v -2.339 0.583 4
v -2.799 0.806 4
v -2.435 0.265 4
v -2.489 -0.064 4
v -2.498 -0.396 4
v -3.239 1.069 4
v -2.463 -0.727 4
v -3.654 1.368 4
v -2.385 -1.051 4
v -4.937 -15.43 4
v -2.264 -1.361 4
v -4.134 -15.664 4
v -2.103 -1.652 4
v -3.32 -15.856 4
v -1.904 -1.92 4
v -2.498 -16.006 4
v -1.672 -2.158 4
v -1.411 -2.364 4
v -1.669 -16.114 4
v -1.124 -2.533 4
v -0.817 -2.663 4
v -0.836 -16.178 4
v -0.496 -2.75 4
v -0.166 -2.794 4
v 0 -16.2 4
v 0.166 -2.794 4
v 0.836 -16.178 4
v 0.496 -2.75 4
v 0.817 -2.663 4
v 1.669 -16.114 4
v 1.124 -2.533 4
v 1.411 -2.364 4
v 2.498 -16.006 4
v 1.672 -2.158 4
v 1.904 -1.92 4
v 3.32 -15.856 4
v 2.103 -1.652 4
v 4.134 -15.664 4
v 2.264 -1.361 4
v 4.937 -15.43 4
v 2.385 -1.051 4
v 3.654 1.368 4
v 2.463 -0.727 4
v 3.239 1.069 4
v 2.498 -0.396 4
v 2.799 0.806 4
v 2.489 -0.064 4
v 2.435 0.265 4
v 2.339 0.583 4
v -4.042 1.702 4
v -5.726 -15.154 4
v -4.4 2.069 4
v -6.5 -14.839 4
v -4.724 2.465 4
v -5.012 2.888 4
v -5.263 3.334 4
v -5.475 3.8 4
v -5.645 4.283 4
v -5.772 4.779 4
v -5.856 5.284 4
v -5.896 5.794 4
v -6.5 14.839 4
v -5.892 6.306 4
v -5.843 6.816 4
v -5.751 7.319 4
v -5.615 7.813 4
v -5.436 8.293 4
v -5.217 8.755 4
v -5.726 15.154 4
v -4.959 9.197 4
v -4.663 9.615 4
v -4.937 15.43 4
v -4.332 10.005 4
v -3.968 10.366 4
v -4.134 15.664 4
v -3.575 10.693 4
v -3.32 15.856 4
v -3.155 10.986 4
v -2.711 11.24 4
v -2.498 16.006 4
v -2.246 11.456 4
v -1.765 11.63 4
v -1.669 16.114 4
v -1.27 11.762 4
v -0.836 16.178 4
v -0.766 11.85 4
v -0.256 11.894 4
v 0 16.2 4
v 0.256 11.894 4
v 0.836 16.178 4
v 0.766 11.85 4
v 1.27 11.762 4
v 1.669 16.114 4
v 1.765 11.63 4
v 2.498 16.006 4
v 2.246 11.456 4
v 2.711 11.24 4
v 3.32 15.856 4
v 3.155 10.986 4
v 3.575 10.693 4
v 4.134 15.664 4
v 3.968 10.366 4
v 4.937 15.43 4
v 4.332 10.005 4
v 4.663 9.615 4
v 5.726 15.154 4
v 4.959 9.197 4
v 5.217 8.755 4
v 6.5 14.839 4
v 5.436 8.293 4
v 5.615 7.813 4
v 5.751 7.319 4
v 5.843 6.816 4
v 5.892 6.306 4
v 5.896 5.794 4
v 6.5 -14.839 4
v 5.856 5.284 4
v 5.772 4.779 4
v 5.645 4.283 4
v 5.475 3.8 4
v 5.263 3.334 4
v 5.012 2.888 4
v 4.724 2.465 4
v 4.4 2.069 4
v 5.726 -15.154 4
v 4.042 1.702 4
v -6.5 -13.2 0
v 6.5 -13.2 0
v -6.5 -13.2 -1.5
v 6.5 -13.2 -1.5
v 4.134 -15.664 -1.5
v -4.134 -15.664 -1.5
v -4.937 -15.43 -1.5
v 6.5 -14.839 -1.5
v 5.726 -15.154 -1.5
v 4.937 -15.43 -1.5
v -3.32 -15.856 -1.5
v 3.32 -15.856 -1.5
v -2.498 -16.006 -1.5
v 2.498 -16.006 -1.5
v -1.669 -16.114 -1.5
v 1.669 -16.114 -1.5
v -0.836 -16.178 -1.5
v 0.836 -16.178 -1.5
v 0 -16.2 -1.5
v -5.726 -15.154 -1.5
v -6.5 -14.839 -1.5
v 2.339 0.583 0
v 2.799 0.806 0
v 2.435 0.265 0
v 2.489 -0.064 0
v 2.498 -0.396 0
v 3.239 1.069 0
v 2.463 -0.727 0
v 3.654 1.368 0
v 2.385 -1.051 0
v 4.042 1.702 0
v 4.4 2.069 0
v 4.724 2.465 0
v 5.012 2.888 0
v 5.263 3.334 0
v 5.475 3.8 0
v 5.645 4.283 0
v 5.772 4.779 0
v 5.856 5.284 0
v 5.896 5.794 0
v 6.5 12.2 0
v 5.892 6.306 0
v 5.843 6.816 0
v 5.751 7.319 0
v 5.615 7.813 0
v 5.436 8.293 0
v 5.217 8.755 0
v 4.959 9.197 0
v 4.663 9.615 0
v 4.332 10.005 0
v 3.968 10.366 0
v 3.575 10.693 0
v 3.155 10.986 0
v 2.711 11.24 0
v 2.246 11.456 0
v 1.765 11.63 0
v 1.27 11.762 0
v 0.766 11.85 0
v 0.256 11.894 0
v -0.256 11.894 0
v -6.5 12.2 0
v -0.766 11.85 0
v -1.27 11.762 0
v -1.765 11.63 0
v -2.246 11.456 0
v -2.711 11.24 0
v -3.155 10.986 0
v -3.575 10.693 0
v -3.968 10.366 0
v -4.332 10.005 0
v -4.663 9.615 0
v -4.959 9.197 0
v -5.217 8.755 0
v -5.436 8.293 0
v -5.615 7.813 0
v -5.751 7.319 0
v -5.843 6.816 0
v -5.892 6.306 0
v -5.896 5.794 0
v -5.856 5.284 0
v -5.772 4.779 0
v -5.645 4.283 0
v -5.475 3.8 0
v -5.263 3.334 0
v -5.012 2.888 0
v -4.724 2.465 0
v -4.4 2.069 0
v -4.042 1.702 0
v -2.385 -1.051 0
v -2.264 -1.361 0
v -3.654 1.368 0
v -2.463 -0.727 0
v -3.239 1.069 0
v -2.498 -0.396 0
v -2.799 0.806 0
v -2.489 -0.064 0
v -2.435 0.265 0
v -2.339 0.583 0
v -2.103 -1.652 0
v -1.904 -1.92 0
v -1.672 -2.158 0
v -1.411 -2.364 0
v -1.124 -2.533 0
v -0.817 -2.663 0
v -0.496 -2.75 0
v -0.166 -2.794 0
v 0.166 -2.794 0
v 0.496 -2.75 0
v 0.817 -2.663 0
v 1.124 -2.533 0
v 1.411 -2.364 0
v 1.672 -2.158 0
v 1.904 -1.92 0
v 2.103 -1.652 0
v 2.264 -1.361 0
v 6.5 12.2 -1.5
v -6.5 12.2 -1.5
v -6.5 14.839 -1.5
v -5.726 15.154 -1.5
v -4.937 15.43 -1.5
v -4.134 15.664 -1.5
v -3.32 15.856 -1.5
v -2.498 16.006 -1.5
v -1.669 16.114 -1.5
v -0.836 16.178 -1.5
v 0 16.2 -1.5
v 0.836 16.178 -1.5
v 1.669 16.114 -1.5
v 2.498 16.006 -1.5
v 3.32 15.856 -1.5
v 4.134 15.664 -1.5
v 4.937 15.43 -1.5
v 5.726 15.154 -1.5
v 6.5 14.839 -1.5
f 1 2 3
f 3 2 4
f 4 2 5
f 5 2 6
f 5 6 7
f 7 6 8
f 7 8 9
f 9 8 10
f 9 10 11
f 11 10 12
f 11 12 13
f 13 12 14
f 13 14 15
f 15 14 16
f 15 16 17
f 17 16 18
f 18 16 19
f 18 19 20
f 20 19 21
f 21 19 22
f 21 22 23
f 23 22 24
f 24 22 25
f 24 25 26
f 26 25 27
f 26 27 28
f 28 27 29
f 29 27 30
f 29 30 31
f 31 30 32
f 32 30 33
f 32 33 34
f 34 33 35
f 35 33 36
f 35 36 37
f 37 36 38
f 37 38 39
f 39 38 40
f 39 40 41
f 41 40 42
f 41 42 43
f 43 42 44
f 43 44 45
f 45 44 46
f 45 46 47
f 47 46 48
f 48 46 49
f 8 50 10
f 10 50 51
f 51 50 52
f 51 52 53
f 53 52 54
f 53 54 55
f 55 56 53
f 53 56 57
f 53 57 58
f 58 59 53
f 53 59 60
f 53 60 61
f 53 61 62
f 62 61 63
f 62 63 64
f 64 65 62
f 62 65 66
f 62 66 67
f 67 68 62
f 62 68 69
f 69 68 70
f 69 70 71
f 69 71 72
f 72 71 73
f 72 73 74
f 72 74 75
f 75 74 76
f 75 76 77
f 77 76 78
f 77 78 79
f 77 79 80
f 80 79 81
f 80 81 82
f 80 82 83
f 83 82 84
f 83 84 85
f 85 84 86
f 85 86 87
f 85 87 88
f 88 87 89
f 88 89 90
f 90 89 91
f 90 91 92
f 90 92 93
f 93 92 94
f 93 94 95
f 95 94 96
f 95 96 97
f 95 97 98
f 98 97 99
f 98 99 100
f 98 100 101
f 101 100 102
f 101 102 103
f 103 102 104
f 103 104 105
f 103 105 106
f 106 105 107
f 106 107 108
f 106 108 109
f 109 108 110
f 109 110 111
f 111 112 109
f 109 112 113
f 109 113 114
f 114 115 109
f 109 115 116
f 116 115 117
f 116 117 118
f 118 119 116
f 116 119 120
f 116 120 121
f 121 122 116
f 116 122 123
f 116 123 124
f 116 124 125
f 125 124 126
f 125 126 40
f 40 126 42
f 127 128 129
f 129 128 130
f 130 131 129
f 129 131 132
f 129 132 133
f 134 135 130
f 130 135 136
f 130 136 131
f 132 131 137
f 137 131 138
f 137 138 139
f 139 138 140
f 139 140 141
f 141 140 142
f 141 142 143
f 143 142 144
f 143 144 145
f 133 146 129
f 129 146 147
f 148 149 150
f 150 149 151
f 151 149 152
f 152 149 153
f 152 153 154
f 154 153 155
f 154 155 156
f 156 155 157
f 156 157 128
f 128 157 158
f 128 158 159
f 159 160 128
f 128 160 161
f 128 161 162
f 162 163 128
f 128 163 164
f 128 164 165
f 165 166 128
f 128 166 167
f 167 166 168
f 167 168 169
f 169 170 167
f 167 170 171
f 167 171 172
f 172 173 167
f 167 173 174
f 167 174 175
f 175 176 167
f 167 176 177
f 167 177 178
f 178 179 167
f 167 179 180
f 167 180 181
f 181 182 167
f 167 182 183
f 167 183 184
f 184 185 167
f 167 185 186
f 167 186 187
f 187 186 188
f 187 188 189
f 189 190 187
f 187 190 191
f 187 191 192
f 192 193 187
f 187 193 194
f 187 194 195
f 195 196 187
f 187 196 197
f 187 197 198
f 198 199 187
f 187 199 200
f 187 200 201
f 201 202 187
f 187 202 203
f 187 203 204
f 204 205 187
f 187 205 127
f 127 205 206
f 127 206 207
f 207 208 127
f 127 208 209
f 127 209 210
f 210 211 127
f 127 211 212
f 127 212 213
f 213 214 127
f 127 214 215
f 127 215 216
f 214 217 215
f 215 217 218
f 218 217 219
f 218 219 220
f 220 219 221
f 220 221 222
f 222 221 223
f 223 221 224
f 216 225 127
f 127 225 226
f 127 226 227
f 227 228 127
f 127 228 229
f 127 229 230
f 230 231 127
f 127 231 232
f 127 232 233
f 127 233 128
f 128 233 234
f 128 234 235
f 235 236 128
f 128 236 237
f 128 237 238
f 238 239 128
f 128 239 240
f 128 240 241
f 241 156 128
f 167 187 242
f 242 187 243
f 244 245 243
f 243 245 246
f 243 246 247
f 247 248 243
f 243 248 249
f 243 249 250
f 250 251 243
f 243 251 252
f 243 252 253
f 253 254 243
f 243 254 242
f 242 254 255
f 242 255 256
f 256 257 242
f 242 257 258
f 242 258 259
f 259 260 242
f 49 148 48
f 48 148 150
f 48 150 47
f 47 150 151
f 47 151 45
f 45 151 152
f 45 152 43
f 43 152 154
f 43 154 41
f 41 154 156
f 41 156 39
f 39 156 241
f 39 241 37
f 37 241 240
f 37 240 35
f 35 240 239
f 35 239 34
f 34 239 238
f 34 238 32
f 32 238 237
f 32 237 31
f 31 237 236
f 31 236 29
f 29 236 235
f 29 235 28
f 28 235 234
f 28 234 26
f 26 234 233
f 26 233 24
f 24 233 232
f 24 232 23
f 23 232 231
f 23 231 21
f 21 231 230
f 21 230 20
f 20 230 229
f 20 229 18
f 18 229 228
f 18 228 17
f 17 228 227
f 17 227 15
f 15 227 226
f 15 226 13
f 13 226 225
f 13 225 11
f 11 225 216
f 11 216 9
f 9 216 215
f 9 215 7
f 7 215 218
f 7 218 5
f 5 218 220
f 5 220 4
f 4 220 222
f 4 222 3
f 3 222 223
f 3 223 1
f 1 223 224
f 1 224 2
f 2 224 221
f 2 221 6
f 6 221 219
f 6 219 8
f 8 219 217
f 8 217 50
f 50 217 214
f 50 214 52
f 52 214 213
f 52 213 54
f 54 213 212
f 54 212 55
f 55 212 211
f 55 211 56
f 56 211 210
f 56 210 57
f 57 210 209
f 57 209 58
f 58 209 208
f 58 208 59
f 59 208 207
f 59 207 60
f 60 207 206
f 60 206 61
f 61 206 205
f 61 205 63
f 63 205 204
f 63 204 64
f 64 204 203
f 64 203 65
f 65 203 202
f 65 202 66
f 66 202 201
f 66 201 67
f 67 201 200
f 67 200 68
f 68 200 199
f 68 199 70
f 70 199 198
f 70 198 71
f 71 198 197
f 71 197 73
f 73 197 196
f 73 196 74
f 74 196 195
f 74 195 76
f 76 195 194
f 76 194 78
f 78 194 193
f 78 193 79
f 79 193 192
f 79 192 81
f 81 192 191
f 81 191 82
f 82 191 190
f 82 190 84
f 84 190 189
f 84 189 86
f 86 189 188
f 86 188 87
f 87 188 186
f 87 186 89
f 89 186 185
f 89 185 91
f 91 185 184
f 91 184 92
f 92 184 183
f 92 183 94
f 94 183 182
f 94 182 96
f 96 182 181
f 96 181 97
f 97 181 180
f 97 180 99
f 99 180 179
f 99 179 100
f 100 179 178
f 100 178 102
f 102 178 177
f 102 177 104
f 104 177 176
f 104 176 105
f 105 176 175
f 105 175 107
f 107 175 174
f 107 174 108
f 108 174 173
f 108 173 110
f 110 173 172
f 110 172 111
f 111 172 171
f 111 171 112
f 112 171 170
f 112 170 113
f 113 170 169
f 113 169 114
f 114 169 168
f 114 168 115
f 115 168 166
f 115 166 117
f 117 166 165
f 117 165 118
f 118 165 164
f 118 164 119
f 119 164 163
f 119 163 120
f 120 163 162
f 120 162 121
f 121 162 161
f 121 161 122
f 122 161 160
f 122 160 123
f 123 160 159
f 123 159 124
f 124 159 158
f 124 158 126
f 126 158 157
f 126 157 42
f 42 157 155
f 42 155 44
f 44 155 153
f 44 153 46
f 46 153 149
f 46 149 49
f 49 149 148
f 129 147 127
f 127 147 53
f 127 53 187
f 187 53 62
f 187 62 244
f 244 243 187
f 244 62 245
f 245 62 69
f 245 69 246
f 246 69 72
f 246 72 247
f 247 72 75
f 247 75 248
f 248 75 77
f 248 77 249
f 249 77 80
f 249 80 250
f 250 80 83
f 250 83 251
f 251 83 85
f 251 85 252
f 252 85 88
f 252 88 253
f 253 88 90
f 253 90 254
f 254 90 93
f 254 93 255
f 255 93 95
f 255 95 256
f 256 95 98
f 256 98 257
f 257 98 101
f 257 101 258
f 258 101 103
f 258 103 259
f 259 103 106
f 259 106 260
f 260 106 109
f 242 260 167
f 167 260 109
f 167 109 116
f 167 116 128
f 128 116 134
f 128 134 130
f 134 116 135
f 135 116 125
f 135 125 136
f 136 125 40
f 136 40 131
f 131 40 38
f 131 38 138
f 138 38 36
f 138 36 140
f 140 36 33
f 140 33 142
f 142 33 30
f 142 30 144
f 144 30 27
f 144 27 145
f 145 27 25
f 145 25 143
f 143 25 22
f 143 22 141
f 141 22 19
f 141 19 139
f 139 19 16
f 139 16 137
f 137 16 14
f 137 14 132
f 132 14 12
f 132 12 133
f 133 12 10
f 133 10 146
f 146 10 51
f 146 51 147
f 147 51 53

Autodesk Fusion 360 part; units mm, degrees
sketch "Sketch1" plane through (0, 0, 0) normal (0, 0, 1) x (1, 0, 0)
  line L0 (6.5, 14.8388) -> (6.5, -14.8388)
  line L1 (-6.5, -14.8388) -> (-6.5, 14.8388)
  line L2 (-6.5, 16.2) -> (6.5, -16.2) construction
  line L3 (6.5, 16.2) -> (-6.5, -16.2) construction
  arc A0 (-6.5, -14.8388) -> (6.5, -14.8388) centre (0, 0) ccw
  arc A1 (6.5, 14.8388) -> (-6.5, 14.8388) centre (0, 0) ccw
  line L4 (0, 0) -> (0, 6) construction
  circle A2 centre (0, -0.3) radius 2.5
  arc A3 (-0.0402, 0.1001) -> (0.0402, 0.1001) centre (0, 6) ccw
  arc A4 (2.3387, 0.5833) -> (-2.3387, 0.5833) centre (0, 6) ccw
  line L5 (0, 0) -> (0, -13.2) construction
  line L6 (0, -13.2) -> (6.5, -13.2)
  line L7 (0, -13.2) -> (-6.5, -13.2)
  line L8 (0, 16.2) -> (0, 12.2) construction
  line L9 (0, 12.2) -> (6.5, 12.2)
  line L10 (0, 12.2) -> (-6.5, 12.2)
  dimension "d1" = 32.4
  dimension "d2" = 13
  dimension "d3" = 32.4
  dimension "d4" = 6
  dimension "d5" = 11.8
  dimension "d6" = 5
  dimension "d9" = 13.2
  dimension "d10" = 4
extrude "Extrude1" add sketch "Sketch1" along normal blind 3
extrude "Extrude2" add sketch "Sketch1" against normal blind 1.5 contours L0 L1 A1 L9 L10 | L0 L1 A0 L6 L7
extrude "Extrude3" add 1 faces at (4.4187, -4.6534, 3) along direction (0, 0, 1) blind 1
